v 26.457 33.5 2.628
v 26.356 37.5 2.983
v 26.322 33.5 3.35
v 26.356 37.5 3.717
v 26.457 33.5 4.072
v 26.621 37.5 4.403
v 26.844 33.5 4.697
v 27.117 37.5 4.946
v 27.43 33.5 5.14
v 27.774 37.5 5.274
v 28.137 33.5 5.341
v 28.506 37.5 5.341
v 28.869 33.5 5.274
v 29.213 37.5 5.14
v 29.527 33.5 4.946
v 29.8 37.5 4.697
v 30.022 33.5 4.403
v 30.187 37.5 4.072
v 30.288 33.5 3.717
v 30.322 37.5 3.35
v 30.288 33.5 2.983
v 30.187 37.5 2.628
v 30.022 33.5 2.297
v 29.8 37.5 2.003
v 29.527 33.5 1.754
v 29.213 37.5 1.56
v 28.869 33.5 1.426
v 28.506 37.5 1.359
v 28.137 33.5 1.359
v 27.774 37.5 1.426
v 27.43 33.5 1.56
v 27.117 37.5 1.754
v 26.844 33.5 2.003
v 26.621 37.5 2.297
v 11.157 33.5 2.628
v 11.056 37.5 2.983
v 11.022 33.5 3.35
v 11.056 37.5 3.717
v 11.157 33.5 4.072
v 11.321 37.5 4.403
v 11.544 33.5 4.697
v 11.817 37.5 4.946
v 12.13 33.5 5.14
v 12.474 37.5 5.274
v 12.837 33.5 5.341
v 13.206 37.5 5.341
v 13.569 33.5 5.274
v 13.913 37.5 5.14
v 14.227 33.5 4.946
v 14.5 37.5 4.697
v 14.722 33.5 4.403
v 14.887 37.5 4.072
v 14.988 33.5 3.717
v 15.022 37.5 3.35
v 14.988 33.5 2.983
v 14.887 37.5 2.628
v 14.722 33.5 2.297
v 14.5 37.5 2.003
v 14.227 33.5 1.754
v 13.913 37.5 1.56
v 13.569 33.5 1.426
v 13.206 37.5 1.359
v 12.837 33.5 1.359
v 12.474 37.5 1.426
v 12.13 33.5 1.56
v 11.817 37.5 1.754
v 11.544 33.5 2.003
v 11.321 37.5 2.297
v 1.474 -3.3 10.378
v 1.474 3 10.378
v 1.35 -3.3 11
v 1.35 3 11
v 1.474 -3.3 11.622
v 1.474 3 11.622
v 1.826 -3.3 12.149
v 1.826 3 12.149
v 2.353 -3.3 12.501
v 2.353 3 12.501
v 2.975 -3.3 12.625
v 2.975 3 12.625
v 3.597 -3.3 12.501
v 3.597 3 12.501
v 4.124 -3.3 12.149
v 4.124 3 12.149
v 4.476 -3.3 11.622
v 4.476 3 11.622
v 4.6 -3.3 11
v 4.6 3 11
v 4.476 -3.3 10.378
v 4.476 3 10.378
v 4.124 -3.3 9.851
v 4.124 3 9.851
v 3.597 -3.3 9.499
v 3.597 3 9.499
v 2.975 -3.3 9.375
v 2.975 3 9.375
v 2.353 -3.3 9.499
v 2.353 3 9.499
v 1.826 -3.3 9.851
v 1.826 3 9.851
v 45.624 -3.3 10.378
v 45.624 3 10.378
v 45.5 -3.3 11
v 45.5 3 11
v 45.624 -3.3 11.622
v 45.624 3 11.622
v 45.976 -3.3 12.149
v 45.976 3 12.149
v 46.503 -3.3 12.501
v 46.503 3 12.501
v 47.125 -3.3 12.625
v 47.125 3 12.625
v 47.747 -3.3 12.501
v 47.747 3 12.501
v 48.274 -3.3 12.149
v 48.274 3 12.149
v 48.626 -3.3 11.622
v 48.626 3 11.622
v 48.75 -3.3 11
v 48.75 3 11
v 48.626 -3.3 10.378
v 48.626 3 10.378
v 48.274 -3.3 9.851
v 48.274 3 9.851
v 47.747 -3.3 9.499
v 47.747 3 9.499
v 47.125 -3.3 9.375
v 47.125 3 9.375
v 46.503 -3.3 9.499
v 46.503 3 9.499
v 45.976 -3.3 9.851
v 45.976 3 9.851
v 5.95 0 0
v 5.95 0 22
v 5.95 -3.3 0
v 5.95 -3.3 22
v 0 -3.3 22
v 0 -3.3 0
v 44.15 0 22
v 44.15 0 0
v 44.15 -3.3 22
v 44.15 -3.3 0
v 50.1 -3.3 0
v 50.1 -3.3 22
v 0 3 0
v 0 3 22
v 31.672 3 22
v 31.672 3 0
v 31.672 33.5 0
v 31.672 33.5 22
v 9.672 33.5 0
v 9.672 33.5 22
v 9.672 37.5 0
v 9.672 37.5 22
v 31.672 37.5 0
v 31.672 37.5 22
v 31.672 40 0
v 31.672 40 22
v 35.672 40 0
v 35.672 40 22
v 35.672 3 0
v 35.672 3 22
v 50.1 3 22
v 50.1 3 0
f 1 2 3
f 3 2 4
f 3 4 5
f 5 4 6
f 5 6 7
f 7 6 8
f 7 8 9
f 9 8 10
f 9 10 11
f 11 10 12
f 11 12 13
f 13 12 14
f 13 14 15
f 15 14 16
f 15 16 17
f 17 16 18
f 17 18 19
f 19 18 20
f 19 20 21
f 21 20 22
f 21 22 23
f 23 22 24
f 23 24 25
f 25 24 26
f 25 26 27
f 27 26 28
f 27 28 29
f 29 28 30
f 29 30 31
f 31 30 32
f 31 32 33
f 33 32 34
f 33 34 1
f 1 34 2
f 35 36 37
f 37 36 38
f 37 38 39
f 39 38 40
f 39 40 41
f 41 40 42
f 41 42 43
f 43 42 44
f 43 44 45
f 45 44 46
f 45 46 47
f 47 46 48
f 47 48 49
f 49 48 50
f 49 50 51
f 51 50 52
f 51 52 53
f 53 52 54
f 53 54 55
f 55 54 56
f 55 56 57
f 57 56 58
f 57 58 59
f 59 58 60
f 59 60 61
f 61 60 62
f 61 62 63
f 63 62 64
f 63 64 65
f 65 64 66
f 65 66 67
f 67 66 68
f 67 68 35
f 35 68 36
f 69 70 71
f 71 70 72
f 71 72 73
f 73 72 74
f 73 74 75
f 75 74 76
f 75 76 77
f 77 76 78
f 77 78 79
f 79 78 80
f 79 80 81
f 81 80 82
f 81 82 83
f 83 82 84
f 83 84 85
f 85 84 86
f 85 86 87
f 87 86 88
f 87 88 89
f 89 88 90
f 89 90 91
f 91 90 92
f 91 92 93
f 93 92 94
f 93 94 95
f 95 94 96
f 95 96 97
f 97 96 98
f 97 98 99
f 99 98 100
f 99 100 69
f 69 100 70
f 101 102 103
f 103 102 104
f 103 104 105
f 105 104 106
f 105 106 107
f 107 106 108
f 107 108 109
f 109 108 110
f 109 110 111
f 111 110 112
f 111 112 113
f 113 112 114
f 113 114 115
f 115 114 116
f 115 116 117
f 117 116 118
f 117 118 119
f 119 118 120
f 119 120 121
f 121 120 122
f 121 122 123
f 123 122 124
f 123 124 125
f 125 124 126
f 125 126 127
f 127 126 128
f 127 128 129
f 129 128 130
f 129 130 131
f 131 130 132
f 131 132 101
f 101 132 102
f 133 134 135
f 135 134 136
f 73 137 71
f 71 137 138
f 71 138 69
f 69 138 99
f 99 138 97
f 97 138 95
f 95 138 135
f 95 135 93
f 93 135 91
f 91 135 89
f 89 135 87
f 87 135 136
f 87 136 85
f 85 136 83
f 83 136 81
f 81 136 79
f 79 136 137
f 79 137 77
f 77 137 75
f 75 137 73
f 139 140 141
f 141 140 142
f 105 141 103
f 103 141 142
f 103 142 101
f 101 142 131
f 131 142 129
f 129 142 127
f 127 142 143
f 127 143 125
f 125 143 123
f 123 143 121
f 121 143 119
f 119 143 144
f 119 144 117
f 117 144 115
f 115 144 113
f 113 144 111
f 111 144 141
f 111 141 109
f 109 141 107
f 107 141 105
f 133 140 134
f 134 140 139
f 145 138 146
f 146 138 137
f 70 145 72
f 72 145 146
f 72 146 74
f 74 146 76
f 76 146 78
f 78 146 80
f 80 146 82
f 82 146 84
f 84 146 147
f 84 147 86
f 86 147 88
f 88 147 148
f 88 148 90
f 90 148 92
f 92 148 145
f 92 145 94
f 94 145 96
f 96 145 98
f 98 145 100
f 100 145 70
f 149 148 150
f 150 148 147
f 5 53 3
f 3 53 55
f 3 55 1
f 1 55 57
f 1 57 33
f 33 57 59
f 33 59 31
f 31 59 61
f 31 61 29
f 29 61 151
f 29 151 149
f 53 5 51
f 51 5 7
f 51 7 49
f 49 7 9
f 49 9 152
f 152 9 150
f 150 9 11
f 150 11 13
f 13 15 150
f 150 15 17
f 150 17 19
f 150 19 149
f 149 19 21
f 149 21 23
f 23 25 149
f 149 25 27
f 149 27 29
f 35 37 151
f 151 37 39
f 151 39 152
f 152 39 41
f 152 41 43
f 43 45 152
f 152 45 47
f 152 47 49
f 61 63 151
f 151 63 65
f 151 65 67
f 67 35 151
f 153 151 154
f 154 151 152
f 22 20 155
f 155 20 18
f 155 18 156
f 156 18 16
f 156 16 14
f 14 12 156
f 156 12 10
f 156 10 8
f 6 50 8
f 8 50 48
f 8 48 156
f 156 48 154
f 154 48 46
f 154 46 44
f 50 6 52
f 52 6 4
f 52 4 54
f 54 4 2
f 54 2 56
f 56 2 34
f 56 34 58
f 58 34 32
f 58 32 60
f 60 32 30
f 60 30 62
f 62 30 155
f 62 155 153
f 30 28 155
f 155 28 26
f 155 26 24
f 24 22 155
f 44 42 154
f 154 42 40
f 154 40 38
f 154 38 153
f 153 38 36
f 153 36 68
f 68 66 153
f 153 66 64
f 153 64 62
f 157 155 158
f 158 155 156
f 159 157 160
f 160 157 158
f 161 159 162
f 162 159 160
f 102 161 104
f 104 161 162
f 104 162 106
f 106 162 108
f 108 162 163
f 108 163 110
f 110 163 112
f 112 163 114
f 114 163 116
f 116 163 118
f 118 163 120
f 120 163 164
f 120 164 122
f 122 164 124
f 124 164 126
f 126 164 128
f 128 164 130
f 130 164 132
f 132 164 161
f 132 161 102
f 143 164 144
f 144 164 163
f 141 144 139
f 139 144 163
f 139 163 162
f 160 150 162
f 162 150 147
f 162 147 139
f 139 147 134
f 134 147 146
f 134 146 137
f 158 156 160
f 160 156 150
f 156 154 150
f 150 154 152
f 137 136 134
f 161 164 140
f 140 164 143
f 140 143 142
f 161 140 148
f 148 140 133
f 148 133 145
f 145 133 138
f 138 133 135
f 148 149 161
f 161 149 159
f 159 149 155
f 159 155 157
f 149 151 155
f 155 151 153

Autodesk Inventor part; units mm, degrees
ref_plane "YZ Plane" through (0, 0, 0) normal (1, 0, 0) x (0, 1, 0)
ref_plane "XZ Plane" through (0, 0, 0) normal (0, 1, 0) x (-1, 0, 0)
ref_plane "XY Plane" through (0, 0, 0) normal (0, 0, 1) x (1, 0, 0)
sketch "Sketch1" plane through (0, 0, 0) normal (0, 0, 1) x (1, 0, 0)
  line L0 (0, 0) -> (50.1, 0)
  line L1 (50.1, 0) -> (50.1, 3)
  line L2 (50.1, 3) -> (0, 3)
  line L3 (0, 3) -> (0, 0)
  line L4 (35.6718, 0) -> (31.6718, 0)
  line L5 (31.6718, 0) -> (31.6718, 40)
  line L6 (31.6718, 40) -> (35.6718, 40)
  line L7 (35.6718, 40) -> (35.6718, 0)
  line L8 (31.6718, 37.5) -> (9.6718, 37.5)
  line L9 (9.6718, 37.5) -> (9.6718, 33.5)
  line L10 (9.6718, 33.5) -> (31.6718, 33.5)
  line L11 (31.6718, 33.5) -> (31.6718, 37.5)
  line L12 (5.95, 0) -> (44.15, 0)
  line L13 (44.15, 0) -> (44.15, 3)
  line L14 (44.15, 3) -> (5.95, 3)
  line L15 (5.95, 3) -> (5.95, 0)
  point P0 (35.6718, 3)
  point P1 (31.6718, 3)
  dimension "d0" = 50.1
  dimension "d1" = 3
  dimension "d2" = 40
  dimension "d3" = 22
  dimension "d4" = 4
  dimension "d5" = 2.5
  dimension "d6" = 38.2
  dimension "d7" = 5.95
  dimension "d30" = 4
extrude "Extrusion1" add sketch "Sketch1" along normal blind 22
sketch "Sketch2" plane through (0, 0, 0) normal (0, -1, 0) x (1, 0, 0)
  line L0 (50.1, 0) -> (50.1, 22) projected
  line L1 (0, 22) -> (50.1, 22) projected
  line L2 (50.1, 0) -> (44.15, 0)
  line L3 (44.15, 0) -> (44.15, 22)
  line L4 (44.15, 22) -> (50.1, 22)
  line L5 (50.1, 22) -> (50.1, 0)
  line L6 (0, 0) -> (5.95, 0)
  line L7 (5.95, 0) -> (5.95, 22)
  line L8 (5.95, 22) -> (0, 22)
  line L9 (0, 22) -> (0, 0)
  circle A0 centre (47.125, 11) radius 1.625
  circle A1 centre (2.975, 11) radius 1.625
  point P0 (47.125, 22)
  point P1 (0, 11)
  dimension "d10" = 5.95
  dimension "d11" = 5.95
  dimension "d14" = 3.25
  dimension "d15" = 3.25
  dimension "d16" = 2.975
  dimension "d17" = 11
  dimension "d18" = 2.975
  dimension "d19" = 11
extrude "Extrusion2" add sketch "Sketch2" along normal blind 3.3 contours L2 L3 L1 L0 | L7 L6 L9 L1 | A0 | A1
extrude "Extrusion3" cut sketch "Sketch2" along normal through all both and the other way through all contours A0 | A1
sketch "Sketch3" plane through (9.6718, 37.5, 0) normal (0, 1, 0) x (1, 0, 0)
  circle A0 centre (18.65, -18.65) radius 2
  circle A1 centre (18.65, -3.35) radius 2
  line L0 (22, 0) -> (22, -22) projected
  line L1 (22, -22) -> (-9.6718, -22) projected
  line L2 (22, 0) -> (0, 0) projected
  circle A2 centre (3.35, -3.35) radius 2
  line L3 (0, 0) -> (0, -22) projected
  point P0 (-9.6718, 0)
  point P1 (11, 0)
  dimension "d22" = 3.35
  dimension "d23" = 4
  dimension "d24" = 4
  dimension "d25" = 15.3
  dimension "d26" = 3.35
  dimension "d31" = 15.3
  dimension "d32" = 4
  dimension "d33" = 3.35
  dimension "d34" = 3.35
extrude "Extrusion4" cut sketch "Sketch3" against normal blind 10 contours A1 | A2
equation "\"d7\" = -0.5 * d6 + 0.5 * d0"
properties part number "IMU_shin_mount"
